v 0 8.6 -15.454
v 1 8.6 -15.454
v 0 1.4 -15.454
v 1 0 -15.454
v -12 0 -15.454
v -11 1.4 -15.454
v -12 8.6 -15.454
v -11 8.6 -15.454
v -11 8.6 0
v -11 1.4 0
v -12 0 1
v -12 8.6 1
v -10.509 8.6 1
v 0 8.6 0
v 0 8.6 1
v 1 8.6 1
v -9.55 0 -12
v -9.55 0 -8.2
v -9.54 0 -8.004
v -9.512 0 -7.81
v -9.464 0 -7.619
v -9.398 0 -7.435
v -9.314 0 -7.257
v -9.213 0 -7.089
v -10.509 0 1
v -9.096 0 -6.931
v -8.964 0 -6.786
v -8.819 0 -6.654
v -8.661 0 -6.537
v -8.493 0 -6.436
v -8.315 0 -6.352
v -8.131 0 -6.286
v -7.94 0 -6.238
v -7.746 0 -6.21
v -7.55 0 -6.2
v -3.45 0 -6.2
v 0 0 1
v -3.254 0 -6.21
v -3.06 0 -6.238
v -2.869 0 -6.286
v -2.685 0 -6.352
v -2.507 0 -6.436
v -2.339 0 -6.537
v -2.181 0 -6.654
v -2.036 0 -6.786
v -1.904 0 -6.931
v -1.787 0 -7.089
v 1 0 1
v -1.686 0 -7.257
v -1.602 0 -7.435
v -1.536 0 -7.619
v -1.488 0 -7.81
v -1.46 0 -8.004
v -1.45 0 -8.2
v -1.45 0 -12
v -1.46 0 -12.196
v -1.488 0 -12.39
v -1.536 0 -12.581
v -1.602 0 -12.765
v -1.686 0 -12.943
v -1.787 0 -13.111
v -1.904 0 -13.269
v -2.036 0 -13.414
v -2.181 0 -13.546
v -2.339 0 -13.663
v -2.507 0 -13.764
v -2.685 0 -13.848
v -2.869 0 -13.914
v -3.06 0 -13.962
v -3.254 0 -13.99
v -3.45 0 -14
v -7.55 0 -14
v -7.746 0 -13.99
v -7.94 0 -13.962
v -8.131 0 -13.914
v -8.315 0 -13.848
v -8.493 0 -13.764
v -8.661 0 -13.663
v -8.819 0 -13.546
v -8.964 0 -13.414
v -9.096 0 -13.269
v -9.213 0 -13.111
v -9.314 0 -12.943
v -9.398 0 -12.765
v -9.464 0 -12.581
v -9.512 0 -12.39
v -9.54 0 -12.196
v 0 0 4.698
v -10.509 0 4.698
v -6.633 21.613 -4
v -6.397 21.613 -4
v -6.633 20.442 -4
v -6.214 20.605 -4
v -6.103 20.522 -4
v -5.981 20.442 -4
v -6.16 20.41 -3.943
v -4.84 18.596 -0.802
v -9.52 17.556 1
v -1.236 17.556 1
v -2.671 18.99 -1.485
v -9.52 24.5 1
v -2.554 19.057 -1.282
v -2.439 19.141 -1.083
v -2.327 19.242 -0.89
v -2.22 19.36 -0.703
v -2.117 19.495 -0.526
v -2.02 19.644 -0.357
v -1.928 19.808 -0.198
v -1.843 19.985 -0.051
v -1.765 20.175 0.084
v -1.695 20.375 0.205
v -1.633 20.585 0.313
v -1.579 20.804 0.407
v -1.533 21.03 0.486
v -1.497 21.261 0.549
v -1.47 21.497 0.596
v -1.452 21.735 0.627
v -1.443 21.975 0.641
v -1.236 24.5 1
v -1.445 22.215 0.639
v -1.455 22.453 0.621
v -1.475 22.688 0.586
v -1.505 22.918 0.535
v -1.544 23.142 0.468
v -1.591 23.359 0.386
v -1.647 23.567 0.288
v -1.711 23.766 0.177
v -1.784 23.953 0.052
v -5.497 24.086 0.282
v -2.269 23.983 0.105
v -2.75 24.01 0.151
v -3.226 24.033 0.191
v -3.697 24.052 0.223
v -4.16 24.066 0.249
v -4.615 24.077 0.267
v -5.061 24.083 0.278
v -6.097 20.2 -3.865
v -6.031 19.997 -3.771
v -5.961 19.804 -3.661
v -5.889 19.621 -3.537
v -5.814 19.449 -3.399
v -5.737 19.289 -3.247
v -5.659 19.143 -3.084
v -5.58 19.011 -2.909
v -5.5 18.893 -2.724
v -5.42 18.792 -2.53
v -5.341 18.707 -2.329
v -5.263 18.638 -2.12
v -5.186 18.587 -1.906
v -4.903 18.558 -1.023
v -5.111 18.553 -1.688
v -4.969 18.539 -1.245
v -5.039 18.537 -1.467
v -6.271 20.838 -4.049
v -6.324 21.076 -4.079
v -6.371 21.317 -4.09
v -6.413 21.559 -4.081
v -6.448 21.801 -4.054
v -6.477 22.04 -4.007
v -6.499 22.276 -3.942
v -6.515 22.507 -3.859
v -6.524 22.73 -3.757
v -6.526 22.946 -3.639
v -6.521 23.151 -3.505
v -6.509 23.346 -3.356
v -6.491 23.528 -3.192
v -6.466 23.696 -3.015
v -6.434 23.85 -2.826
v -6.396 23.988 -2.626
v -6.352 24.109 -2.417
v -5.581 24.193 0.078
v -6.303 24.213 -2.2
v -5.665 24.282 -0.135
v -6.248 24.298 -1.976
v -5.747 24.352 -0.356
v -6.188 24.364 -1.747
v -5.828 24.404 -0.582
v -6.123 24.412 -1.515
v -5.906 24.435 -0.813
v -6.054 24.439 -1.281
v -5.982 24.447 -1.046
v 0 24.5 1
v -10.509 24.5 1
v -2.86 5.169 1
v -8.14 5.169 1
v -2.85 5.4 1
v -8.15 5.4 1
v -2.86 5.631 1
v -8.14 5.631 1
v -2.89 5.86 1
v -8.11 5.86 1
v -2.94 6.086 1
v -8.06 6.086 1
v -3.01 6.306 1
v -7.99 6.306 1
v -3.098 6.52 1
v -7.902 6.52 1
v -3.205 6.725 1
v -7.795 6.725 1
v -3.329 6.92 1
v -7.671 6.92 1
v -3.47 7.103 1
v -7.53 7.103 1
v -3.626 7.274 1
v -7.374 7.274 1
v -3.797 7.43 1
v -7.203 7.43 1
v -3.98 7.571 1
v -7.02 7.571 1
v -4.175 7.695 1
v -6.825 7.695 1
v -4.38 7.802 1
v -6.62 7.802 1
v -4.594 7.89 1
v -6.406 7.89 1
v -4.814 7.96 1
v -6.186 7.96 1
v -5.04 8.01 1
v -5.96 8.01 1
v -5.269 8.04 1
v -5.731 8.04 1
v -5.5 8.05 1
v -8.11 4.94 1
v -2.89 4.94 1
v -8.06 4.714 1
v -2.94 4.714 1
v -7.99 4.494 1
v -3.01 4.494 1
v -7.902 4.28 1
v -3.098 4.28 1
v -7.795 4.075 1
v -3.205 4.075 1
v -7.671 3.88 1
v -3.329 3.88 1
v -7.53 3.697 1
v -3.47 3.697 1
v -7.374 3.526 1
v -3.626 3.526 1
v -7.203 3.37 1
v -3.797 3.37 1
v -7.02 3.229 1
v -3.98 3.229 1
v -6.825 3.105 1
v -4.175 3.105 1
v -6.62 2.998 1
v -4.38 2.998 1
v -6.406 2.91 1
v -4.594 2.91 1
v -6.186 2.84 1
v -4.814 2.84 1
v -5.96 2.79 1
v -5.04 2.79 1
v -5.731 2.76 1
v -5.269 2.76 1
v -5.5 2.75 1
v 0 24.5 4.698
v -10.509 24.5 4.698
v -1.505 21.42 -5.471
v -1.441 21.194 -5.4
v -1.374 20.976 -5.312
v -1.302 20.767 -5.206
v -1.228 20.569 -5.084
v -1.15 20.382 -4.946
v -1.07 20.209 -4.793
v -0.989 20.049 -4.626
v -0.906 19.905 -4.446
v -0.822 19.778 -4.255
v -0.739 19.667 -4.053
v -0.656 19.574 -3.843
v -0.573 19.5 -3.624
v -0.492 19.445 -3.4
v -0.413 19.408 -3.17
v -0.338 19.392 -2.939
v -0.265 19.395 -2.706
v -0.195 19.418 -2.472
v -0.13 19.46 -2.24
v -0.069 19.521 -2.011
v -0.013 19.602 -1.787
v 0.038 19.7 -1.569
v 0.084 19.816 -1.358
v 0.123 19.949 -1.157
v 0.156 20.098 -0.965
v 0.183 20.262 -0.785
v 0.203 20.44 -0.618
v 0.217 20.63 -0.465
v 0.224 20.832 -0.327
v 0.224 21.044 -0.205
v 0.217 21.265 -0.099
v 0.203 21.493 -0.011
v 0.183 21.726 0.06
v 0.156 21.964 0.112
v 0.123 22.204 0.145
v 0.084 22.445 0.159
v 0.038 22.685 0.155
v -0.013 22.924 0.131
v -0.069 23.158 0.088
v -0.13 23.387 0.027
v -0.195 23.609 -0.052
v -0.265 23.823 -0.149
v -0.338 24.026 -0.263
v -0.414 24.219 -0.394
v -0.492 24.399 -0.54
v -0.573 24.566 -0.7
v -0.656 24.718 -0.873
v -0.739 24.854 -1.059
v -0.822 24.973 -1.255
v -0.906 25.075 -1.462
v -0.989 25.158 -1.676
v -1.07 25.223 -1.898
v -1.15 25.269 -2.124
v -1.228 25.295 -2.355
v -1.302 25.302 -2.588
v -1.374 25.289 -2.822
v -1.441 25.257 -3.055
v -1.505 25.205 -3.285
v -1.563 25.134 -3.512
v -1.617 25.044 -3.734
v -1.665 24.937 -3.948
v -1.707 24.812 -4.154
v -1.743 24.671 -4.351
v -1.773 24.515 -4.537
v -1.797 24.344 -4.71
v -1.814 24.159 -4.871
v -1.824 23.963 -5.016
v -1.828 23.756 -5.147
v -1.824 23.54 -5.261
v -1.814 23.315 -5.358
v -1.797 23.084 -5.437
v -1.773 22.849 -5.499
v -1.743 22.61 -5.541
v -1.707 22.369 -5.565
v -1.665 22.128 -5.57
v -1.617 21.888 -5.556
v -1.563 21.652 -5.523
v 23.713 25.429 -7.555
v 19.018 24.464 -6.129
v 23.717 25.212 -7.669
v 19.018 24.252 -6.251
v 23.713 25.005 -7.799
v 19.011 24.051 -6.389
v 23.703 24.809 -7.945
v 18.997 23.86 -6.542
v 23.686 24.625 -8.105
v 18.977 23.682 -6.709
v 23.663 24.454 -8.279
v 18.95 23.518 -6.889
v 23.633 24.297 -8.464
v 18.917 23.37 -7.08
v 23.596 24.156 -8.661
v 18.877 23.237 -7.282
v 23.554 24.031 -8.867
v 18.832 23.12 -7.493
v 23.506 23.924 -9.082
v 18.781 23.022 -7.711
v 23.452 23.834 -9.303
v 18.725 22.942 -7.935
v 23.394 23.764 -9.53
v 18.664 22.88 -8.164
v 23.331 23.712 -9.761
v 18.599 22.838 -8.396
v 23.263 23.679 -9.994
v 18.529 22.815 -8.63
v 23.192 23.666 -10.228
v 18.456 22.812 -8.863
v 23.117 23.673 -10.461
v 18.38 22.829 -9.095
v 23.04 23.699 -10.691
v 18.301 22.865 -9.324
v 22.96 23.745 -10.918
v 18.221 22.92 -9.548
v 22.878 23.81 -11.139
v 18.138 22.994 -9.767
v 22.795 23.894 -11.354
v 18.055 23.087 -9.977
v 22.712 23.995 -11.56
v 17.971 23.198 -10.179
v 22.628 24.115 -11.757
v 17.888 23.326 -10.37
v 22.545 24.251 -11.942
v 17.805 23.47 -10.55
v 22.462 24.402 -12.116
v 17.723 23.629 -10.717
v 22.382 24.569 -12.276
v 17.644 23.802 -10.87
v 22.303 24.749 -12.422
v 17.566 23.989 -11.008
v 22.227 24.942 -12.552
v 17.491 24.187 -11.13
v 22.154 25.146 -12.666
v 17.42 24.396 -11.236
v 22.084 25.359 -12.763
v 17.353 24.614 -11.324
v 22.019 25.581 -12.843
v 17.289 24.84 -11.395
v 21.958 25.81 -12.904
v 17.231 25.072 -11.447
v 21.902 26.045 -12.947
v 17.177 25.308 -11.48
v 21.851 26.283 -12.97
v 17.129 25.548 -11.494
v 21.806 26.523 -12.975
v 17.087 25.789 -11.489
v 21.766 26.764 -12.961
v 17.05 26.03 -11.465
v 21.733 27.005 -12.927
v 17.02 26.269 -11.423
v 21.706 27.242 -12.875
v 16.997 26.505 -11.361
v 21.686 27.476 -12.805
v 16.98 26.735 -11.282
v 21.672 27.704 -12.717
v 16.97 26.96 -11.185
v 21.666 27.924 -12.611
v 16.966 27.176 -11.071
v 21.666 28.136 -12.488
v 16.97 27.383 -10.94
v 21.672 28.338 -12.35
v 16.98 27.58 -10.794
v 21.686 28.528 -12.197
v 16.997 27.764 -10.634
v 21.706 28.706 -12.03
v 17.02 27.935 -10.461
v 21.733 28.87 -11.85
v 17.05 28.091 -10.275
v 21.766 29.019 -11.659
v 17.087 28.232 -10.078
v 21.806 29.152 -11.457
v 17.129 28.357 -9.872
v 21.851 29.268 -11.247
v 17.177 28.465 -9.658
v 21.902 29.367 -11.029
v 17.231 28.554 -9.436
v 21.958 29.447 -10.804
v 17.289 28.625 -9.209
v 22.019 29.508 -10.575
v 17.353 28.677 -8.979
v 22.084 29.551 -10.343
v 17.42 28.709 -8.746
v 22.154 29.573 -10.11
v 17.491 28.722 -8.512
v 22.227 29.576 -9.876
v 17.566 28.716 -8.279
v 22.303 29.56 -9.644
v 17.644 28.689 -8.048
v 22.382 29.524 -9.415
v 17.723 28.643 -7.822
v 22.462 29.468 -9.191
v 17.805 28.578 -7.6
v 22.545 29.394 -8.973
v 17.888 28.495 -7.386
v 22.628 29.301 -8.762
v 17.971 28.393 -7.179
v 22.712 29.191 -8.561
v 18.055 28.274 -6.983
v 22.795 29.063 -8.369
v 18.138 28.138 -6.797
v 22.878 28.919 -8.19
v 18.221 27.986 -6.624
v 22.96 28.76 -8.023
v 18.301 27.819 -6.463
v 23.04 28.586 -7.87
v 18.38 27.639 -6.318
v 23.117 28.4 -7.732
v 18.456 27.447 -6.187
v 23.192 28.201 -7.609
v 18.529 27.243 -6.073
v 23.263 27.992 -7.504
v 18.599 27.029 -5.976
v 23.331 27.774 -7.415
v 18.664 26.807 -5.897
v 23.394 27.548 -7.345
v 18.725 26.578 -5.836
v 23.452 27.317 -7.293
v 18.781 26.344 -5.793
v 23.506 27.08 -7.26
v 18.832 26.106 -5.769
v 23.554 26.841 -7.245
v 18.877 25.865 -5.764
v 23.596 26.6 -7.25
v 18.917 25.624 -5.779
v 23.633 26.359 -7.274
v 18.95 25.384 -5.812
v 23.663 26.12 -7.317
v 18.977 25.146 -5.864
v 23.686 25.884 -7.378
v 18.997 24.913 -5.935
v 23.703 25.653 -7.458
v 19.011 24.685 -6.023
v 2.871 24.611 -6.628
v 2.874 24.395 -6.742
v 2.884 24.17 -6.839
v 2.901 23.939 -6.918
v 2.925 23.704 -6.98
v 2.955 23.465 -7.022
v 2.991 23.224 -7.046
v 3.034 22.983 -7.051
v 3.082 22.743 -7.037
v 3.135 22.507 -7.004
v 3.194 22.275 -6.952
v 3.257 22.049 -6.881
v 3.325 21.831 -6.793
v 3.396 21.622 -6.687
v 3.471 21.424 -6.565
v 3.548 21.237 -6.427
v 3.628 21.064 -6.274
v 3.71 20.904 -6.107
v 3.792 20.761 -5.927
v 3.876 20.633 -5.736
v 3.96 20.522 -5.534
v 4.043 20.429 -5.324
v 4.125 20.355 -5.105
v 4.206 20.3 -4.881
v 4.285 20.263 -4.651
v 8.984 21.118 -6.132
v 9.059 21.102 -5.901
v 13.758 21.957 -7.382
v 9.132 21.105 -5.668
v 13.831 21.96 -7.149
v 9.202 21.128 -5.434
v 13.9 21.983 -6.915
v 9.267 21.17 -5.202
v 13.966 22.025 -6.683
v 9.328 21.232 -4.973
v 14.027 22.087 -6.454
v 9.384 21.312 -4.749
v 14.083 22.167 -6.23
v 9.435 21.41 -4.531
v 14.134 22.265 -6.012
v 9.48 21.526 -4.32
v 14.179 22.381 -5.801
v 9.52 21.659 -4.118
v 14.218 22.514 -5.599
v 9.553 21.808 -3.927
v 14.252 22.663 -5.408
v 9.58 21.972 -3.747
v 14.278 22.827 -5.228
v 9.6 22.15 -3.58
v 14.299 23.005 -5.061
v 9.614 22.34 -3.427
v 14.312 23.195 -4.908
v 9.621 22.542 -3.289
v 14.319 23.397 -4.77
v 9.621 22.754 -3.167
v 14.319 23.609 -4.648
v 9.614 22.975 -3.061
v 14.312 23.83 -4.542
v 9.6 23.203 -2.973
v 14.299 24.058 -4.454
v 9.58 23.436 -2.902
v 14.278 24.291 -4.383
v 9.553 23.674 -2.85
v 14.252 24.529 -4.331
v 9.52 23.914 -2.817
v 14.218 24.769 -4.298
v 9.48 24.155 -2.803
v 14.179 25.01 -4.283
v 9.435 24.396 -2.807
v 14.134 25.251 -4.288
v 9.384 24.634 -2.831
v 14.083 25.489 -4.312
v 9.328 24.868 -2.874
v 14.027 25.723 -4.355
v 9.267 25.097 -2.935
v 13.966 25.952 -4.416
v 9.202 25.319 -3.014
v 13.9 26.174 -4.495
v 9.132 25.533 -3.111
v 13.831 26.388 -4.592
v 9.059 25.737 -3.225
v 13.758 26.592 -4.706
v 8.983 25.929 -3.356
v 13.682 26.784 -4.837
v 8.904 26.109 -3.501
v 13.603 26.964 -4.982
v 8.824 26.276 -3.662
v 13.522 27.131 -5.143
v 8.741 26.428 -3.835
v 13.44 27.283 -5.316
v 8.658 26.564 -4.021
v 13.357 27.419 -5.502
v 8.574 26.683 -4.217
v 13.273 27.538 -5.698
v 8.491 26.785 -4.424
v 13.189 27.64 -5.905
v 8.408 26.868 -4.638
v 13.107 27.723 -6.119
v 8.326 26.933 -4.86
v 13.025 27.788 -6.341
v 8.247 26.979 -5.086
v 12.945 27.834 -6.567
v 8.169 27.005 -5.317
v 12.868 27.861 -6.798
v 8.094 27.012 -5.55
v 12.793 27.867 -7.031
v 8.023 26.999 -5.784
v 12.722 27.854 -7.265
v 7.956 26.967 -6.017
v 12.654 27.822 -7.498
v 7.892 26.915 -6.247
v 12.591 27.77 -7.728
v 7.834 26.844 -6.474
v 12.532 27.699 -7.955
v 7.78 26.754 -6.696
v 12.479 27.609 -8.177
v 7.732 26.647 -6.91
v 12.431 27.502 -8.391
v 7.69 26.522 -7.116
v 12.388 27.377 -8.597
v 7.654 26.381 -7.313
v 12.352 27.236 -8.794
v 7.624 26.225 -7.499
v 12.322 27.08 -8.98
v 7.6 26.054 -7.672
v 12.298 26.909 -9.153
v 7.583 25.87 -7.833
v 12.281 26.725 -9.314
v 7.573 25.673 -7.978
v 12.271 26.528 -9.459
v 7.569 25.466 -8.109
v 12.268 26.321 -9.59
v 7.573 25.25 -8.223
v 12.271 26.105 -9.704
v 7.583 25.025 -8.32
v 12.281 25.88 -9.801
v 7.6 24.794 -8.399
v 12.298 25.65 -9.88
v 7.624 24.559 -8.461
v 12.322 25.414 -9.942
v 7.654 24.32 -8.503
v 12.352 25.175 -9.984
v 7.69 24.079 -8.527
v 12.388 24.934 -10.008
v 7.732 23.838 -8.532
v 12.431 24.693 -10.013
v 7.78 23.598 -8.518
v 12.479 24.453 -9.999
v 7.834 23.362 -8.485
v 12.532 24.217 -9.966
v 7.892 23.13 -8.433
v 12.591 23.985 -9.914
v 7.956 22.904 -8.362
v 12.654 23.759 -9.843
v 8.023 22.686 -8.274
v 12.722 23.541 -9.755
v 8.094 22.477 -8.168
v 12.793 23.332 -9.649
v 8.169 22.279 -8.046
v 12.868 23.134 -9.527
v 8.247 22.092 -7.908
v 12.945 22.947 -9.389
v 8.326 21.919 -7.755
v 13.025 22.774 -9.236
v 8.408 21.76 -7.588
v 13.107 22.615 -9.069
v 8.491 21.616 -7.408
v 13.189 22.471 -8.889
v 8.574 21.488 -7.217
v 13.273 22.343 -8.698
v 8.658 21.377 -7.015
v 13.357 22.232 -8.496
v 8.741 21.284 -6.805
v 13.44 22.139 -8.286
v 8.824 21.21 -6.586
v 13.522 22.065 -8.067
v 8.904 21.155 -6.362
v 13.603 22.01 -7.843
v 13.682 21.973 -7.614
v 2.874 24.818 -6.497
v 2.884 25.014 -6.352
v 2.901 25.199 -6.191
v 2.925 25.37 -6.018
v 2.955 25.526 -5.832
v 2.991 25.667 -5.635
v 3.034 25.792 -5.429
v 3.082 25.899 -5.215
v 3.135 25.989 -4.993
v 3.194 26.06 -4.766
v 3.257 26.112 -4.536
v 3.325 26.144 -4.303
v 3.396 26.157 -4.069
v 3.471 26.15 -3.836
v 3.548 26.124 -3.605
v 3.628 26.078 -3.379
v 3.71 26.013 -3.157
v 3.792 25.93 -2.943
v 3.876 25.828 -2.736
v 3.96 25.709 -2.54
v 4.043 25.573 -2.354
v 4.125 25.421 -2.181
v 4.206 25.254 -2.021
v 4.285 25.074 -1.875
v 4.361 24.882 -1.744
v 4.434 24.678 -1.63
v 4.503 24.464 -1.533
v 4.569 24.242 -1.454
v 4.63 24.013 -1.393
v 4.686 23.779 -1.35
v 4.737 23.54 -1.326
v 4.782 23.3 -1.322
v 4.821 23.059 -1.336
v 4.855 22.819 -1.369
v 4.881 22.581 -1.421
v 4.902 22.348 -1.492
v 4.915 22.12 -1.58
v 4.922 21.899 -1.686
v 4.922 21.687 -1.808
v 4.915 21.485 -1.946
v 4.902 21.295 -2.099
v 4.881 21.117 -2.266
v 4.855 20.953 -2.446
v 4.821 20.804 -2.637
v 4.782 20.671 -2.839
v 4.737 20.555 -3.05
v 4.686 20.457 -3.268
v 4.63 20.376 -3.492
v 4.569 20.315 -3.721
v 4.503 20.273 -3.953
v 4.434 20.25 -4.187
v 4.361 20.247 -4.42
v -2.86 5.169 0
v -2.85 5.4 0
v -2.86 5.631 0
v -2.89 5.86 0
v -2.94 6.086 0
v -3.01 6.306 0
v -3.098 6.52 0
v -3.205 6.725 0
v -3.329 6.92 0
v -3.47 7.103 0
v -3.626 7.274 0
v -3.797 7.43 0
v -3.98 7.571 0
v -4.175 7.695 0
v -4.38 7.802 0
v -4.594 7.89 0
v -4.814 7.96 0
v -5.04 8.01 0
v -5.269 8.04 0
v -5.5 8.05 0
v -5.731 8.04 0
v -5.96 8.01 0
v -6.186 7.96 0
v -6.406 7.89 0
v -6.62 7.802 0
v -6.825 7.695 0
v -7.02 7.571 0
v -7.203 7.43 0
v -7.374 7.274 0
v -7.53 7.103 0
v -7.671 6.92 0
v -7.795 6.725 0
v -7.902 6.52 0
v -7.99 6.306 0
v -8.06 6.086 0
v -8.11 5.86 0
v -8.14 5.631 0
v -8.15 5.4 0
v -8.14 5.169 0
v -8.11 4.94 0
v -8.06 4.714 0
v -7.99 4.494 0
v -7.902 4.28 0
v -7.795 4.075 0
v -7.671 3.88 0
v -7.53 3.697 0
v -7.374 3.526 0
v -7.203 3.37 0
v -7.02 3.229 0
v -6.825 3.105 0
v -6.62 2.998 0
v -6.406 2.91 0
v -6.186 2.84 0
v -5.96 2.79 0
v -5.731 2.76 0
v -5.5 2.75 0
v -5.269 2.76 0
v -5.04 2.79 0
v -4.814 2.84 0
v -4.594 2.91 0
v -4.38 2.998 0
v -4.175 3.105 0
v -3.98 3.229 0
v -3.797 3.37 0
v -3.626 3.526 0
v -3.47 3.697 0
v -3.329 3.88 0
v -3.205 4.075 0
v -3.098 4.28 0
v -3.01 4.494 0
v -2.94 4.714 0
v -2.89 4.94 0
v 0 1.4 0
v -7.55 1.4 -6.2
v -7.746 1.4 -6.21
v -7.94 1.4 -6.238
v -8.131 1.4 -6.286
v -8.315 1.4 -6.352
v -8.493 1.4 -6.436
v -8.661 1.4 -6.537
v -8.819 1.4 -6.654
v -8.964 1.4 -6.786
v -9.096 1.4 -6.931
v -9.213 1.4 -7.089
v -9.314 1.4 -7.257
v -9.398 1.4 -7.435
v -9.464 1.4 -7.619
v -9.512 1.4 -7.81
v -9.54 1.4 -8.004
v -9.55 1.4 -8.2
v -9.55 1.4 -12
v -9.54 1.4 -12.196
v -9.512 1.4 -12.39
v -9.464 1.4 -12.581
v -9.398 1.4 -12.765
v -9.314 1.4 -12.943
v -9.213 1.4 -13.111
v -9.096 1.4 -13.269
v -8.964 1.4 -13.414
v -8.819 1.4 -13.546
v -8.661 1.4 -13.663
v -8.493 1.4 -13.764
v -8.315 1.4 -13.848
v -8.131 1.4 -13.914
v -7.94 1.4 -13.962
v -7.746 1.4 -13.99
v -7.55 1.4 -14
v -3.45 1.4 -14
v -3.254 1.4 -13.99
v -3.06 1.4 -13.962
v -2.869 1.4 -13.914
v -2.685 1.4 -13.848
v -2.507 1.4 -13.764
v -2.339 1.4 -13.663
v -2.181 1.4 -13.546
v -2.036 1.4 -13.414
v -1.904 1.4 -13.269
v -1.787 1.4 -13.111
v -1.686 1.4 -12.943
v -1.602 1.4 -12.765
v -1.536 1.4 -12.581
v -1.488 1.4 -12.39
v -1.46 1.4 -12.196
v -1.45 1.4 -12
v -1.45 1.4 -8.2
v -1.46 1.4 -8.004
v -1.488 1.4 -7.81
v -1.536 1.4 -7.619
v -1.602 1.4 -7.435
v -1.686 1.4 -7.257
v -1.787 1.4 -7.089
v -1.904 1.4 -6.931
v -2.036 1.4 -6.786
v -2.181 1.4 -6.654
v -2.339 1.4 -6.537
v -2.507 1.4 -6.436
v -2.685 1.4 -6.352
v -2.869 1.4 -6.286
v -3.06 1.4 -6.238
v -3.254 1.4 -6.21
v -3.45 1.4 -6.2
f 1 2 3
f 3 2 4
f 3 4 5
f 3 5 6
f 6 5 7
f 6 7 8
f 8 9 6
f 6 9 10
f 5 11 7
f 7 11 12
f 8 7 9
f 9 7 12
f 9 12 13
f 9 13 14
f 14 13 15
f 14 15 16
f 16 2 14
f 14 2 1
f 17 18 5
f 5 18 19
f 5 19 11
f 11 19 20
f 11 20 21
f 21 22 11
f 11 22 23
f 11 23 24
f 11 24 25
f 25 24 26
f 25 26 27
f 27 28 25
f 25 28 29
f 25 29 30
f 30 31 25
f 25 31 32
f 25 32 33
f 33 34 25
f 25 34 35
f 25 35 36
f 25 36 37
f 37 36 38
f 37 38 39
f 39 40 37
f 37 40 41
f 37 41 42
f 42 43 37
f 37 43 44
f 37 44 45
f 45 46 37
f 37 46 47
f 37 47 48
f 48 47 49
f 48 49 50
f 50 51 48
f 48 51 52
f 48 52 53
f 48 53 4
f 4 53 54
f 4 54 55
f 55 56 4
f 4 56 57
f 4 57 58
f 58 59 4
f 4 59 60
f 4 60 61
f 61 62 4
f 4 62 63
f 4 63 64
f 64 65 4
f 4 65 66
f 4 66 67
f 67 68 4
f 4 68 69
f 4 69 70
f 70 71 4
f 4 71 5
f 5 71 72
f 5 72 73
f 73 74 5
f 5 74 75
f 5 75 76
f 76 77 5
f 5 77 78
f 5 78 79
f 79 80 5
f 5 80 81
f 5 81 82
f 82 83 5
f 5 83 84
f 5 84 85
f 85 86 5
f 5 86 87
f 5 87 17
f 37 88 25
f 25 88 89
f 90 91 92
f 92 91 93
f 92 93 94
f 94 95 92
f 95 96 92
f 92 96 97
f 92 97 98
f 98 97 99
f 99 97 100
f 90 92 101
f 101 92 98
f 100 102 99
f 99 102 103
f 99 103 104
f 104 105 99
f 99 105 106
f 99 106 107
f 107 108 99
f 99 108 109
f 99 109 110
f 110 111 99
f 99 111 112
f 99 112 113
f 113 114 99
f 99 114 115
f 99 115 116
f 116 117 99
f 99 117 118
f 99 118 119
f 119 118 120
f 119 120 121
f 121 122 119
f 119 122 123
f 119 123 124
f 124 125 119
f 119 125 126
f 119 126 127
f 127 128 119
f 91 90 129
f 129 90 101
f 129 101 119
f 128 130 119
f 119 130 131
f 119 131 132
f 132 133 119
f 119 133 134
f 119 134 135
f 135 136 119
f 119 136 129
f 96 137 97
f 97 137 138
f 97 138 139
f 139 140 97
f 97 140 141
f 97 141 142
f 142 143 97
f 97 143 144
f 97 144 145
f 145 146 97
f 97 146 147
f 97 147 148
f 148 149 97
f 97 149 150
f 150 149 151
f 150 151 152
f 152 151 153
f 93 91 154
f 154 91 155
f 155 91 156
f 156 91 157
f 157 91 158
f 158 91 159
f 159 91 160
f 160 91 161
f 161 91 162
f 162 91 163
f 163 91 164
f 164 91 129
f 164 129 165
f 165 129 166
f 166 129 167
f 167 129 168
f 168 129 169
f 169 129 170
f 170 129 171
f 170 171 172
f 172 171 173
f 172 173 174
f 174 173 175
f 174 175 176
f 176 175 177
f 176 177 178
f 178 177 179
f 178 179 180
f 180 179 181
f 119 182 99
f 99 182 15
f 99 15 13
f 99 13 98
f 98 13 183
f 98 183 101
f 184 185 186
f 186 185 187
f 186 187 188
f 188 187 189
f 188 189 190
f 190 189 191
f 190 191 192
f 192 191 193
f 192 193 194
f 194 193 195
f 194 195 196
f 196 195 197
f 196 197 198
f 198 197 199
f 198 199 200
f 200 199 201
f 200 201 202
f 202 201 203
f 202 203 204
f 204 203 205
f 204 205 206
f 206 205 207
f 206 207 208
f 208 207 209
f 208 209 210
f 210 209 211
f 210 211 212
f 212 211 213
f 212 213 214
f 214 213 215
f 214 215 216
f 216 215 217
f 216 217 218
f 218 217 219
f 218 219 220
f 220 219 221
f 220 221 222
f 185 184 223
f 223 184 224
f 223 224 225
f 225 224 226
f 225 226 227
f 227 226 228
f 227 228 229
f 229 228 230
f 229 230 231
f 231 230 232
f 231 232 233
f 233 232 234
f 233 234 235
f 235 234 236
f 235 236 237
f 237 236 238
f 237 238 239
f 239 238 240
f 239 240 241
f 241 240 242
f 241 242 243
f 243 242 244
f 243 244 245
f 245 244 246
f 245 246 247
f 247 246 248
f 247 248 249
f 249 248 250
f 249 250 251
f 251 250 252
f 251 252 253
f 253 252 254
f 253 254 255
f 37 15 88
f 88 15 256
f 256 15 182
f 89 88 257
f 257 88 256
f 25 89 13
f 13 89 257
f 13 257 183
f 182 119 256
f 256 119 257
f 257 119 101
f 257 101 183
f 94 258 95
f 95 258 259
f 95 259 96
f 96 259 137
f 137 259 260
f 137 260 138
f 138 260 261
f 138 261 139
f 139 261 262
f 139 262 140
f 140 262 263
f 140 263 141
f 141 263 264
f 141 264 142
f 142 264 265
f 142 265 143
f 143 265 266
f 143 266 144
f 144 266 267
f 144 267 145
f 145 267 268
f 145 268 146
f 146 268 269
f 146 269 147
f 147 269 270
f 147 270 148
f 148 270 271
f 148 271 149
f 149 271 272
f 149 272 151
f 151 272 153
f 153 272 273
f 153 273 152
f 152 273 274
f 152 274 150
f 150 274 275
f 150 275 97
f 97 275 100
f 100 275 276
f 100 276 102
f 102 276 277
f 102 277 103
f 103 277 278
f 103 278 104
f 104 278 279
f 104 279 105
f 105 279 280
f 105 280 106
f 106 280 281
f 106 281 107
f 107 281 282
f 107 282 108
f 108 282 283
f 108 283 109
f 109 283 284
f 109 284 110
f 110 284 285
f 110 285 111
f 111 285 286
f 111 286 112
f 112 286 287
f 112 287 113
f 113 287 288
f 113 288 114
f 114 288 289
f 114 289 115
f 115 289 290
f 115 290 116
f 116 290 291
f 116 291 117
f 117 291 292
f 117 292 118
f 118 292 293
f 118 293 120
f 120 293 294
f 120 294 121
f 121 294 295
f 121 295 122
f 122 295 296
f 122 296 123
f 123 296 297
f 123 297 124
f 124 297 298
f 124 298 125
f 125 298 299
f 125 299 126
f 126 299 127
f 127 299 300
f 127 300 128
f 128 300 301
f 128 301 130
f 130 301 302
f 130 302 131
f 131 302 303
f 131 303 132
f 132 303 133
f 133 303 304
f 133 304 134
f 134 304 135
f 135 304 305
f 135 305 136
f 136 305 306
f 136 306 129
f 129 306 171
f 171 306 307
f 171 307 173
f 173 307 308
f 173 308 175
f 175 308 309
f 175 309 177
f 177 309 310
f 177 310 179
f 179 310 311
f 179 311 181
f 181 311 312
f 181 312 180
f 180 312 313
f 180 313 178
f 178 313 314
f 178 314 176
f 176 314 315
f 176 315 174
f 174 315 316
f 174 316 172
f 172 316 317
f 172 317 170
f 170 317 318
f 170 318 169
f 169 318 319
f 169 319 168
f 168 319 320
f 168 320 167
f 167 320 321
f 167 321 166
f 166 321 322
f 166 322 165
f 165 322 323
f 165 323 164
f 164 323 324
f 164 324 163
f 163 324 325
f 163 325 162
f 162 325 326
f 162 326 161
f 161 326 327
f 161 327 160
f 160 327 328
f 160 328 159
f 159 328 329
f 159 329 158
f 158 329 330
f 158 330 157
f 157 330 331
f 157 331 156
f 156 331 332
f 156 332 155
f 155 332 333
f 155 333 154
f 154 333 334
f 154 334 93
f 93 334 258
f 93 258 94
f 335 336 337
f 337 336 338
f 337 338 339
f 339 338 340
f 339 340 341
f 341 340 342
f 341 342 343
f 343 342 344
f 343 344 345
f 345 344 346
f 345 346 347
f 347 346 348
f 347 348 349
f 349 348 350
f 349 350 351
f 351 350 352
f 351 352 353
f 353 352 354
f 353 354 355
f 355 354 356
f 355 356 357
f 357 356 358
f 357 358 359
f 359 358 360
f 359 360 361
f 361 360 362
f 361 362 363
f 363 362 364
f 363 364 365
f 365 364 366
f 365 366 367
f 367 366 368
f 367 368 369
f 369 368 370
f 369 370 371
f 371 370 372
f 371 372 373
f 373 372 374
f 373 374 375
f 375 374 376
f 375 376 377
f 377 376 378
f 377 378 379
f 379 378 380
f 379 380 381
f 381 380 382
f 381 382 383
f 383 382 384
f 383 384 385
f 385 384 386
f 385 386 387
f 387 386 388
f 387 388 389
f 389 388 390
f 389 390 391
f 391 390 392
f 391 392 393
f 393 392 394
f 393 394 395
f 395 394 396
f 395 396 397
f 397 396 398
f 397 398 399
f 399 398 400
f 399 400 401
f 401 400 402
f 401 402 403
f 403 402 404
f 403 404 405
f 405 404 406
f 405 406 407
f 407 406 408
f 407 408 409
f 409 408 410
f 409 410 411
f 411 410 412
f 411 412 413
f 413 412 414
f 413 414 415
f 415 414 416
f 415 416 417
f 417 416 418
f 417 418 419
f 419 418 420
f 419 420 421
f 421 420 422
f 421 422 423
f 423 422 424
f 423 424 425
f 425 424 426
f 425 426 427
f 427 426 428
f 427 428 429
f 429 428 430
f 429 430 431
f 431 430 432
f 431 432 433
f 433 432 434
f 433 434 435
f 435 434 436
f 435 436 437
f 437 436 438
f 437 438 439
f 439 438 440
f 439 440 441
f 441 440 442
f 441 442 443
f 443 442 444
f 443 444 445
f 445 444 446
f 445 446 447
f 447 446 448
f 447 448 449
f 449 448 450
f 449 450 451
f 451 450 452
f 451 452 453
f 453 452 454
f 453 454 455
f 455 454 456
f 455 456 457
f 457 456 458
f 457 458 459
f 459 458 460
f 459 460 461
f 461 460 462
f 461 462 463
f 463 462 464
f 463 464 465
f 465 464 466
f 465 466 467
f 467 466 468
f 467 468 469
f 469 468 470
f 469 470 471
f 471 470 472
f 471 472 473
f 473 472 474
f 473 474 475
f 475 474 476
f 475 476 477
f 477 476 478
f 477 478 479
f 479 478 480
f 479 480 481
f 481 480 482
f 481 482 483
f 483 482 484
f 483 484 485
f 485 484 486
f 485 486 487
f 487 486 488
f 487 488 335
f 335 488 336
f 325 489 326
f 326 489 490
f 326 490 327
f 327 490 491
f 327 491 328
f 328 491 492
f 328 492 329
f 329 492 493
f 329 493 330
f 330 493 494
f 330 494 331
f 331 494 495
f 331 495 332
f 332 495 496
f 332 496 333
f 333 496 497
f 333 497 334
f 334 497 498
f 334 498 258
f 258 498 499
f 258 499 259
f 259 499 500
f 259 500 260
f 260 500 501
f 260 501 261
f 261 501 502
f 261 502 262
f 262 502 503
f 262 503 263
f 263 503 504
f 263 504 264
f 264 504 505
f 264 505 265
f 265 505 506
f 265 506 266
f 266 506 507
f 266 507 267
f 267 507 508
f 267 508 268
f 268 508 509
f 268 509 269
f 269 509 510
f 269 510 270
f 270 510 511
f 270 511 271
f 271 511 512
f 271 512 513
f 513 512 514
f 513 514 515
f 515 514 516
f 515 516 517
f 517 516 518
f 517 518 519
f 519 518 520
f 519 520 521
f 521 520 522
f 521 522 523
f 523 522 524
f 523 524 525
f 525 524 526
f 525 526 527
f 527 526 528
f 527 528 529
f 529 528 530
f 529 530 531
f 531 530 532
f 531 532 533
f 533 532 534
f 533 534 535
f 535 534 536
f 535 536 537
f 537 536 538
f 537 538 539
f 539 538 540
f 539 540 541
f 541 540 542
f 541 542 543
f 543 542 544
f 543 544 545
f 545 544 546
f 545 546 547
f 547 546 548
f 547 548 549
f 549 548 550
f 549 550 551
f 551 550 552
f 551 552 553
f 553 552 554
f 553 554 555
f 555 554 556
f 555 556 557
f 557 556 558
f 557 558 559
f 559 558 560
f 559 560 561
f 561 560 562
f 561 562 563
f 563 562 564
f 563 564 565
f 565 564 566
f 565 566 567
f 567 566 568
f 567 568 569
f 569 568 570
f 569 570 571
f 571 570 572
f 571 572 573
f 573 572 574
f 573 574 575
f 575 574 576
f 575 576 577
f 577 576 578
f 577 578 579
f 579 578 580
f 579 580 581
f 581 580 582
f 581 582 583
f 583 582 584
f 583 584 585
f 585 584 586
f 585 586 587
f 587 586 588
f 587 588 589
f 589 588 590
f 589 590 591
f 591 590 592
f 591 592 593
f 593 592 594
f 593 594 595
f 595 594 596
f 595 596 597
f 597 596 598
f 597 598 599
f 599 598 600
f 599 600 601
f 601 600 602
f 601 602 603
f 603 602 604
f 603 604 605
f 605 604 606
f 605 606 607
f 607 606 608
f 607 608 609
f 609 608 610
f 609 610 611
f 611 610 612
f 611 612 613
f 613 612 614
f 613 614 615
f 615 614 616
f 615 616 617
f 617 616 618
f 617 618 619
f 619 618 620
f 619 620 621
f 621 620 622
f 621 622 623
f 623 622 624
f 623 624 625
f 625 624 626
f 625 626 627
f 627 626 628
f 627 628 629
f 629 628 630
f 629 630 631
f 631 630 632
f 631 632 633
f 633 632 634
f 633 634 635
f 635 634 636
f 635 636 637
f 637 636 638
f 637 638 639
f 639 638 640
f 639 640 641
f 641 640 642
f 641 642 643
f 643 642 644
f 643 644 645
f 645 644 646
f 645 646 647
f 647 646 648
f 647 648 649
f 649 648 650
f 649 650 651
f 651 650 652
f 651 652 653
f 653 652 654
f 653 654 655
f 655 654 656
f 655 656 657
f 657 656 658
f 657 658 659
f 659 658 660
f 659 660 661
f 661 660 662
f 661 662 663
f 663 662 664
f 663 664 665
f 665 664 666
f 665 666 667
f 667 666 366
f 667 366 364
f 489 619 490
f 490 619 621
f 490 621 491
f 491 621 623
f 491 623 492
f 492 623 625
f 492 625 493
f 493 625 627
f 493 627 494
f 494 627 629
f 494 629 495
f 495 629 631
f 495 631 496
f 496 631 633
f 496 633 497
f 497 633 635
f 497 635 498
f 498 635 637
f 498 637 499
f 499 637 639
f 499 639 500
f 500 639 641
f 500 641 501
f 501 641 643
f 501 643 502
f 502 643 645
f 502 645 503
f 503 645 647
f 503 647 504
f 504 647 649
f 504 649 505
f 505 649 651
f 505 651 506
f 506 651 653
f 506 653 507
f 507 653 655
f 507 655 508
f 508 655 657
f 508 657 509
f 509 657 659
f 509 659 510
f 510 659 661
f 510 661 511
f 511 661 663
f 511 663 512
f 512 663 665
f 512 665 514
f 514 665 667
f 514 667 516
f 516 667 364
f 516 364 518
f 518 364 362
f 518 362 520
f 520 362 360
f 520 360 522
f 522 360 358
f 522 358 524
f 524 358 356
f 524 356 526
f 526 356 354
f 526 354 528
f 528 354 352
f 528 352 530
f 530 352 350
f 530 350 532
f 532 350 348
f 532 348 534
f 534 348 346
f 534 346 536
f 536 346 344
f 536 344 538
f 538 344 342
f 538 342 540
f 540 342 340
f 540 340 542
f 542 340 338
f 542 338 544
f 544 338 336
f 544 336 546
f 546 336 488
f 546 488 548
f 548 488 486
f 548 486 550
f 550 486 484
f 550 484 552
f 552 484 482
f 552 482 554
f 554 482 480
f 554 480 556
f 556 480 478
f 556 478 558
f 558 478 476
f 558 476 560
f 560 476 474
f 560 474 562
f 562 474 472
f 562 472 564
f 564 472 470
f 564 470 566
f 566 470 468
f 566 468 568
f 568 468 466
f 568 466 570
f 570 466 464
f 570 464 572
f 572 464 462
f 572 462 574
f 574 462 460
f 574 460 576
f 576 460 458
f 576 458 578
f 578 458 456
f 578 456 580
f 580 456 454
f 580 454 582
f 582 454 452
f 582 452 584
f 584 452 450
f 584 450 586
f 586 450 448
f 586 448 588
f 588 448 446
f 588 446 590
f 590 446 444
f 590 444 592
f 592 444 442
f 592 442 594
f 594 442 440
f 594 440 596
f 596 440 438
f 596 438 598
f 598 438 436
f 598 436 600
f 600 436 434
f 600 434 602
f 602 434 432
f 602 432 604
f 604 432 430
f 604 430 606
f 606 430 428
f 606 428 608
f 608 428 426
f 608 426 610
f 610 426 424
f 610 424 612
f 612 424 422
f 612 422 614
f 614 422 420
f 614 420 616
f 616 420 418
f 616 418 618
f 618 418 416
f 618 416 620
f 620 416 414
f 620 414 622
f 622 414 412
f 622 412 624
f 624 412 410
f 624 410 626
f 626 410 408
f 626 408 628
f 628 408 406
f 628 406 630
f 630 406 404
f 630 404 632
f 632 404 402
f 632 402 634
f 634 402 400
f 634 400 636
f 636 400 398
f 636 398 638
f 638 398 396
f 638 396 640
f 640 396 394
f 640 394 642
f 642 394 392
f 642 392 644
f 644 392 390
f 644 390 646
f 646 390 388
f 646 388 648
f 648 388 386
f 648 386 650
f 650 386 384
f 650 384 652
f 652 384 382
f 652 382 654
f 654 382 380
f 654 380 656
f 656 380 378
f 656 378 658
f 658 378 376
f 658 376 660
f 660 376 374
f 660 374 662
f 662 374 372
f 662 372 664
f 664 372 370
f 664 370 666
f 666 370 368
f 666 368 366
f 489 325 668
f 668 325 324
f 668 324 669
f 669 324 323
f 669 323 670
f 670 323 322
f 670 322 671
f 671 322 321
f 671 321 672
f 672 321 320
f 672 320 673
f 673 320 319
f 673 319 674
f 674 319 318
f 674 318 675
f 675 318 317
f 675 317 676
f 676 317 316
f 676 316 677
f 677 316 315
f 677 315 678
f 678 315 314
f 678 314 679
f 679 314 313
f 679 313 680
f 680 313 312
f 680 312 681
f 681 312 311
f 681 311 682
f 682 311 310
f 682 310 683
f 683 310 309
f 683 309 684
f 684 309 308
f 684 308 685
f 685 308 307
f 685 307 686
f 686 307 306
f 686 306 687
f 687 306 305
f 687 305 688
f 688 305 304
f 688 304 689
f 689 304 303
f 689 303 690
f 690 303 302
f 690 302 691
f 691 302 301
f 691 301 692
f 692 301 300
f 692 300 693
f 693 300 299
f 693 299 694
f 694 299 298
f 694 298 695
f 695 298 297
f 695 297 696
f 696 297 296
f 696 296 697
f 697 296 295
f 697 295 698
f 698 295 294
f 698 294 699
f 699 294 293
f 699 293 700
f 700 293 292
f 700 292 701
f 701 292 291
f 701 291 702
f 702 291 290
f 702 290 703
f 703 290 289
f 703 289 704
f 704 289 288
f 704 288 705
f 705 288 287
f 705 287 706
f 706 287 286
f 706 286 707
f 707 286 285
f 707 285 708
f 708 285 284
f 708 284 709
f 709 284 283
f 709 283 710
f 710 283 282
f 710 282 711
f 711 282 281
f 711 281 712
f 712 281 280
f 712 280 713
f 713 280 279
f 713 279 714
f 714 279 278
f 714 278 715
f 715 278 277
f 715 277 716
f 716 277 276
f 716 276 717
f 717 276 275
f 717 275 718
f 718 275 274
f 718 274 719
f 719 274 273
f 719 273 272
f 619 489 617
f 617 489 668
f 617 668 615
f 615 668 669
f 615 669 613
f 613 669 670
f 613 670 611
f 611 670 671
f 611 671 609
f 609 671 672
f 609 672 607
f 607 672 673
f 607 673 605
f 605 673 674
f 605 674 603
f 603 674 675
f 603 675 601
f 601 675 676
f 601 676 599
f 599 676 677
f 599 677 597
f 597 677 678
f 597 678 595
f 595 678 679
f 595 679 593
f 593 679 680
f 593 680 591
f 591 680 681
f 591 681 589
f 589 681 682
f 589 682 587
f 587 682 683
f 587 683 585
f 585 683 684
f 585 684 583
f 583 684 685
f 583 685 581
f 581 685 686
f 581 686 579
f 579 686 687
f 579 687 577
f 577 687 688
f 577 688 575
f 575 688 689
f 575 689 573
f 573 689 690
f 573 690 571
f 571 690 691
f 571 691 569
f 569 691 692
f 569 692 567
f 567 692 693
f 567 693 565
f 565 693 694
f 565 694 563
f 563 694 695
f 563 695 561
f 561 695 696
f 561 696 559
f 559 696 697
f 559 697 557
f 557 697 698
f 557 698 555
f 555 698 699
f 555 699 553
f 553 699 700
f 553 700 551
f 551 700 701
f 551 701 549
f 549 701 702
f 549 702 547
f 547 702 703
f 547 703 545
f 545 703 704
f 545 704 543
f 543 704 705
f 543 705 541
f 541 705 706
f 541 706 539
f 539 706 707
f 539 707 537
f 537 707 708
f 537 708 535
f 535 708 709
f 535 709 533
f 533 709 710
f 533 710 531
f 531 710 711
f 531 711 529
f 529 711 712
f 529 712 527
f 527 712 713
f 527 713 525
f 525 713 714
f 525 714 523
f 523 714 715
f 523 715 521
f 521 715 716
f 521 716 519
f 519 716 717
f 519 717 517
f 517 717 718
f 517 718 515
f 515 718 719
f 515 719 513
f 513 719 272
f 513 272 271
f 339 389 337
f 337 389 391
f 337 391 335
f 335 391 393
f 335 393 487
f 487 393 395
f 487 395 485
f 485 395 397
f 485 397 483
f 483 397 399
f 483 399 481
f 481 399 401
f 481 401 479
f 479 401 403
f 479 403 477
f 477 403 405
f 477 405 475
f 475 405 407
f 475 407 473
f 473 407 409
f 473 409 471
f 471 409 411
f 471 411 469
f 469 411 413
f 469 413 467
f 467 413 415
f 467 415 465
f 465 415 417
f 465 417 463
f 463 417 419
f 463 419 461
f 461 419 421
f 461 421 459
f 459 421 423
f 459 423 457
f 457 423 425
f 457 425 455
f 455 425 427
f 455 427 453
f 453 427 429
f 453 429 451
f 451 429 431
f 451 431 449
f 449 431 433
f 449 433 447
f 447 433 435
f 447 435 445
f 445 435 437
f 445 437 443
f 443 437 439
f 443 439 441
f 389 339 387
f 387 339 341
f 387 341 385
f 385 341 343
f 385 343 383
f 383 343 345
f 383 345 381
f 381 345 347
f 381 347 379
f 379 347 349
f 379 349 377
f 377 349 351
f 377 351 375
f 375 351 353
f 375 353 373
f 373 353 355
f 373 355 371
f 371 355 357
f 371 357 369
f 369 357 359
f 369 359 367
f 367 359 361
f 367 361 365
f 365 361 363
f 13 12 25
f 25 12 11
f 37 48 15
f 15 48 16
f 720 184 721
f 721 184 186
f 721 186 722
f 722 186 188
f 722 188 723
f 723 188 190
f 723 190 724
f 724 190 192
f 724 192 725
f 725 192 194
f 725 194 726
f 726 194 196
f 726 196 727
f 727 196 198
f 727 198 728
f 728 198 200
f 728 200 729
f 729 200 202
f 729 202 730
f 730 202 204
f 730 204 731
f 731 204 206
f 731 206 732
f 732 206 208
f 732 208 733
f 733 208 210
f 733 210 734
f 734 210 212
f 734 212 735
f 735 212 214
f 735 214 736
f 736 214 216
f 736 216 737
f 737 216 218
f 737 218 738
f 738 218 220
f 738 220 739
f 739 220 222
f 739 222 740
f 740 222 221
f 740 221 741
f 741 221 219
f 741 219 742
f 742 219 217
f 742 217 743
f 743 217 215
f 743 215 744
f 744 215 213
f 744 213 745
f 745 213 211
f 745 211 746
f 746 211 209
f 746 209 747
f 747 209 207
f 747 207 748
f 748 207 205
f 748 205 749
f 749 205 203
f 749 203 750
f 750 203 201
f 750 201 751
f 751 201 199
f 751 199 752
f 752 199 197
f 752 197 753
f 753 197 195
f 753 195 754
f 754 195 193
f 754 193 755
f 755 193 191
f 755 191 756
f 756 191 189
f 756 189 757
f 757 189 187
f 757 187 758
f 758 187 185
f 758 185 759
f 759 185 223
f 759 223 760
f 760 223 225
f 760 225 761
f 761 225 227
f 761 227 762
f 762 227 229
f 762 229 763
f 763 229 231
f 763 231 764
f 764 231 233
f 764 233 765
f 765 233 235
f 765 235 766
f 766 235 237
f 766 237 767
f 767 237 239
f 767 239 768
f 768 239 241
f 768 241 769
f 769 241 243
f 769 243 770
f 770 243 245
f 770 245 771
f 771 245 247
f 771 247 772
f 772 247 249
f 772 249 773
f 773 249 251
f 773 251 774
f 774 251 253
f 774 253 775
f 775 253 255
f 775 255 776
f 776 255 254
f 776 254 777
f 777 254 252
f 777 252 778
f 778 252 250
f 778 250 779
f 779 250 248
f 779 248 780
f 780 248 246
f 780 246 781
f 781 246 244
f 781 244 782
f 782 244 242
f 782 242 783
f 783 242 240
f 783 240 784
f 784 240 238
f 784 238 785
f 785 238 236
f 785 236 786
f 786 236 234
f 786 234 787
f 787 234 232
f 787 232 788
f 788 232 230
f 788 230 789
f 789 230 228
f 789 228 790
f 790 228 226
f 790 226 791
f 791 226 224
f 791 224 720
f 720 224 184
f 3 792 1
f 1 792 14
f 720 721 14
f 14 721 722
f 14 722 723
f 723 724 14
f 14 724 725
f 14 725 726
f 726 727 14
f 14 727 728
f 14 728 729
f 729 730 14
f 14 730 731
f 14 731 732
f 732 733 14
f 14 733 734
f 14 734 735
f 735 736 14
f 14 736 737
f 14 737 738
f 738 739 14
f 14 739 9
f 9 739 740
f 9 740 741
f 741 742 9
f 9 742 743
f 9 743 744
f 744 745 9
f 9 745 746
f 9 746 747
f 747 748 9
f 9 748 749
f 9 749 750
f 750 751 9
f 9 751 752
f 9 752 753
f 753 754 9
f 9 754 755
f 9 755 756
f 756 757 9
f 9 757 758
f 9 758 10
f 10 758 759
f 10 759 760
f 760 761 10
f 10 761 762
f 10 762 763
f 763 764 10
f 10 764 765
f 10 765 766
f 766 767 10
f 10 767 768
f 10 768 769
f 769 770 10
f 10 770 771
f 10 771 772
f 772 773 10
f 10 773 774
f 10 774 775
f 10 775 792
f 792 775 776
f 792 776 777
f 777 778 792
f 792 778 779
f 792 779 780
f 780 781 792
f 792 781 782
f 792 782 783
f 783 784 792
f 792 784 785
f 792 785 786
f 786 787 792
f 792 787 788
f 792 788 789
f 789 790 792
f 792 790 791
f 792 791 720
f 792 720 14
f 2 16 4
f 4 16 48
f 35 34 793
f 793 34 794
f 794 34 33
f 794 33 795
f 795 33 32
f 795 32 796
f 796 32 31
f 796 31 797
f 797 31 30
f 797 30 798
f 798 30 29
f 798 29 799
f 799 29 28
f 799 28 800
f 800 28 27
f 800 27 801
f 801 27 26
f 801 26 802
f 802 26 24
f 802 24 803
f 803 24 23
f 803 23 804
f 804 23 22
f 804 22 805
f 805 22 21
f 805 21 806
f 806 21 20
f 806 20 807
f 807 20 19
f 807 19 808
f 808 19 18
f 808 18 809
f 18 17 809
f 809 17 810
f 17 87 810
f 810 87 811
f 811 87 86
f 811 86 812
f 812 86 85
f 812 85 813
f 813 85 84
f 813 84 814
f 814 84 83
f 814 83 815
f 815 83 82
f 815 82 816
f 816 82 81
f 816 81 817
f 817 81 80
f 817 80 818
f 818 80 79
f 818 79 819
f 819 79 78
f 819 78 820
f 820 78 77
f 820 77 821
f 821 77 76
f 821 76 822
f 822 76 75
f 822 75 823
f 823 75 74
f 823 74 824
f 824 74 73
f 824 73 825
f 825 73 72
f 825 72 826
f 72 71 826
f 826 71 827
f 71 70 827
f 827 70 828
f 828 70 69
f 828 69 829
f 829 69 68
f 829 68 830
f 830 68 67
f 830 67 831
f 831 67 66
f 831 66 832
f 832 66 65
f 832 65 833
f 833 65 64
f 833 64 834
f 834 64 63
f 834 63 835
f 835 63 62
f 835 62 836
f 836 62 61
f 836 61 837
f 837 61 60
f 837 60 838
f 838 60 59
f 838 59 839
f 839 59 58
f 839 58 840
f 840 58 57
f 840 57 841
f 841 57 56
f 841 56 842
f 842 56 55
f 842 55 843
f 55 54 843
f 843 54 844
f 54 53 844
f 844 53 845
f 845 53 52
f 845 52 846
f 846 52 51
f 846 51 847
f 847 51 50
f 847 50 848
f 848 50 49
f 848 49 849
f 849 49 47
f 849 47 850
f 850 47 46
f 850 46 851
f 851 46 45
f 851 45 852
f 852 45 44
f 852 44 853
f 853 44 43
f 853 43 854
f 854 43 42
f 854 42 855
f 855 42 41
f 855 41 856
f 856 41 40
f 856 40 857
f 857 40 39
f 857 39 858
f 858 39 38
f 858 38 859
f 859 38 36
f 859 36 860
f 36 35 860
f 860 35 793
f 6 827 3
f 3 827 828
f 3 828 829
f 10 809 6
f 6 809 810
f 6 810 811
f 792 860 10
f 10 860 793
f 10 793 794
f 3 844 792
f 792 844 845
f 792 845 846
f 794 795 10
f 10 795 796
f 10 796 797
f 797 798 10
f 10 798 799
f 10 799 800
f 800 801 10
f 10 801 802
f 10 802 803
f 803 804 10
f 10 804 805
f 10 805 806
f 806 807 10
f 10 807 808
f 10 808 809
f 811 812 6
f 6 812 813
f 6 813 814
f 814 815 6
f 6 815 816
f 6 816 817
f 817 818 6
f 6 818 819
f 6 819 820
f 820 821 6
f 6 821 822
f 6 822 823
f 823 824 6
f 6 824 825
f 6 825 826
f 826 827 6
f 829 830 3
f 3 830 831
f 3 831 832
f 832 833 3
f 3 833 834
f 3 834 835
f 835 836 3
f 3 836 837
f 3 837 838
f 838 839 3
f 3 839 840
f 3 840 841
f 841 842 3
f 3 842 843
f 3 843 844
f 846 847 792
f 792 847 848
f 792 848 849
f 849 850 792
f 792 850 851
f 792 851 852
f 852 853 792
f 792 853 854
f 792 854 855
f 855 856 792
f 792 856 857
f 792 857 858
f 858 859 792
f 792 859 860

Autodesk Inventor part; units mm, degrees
ref_plane "YZ Plane" through (0, 0, 0) normal (1, 0, 0) x (0, 1, 0)
ref_plane "XZ Plane" through (0, 0, 0) normal (0, 1, 0) x (-1, 0, 0)
ref_plane "XY Plane" through (0, 0, 0) normal (0, 0, 1) x (1, 0, 0)
sketch "Sketch3" plane through (0, 0, 0) normal (0, 1, 0) x (-1, 0, 0)
  line L0 (0, 0) -> (11, 0)
  line L1 (11, 0) -> (11, -56)
  line L2 (11, -56) -> (0, -56)
  line L3 (0, -56) -> (0, 0)
  line L4 (12, 1) -> (-1, 1)
  line L5 (-1, 1) -> (-1, -57)
  line L6 (-1, -57) -> (12, -57)
  line L7 (12, -57) -> (12, 1)
  line L8 (7.55, -6.2) -> (3.45, -6.2)
  line L9 (1.45, -8.2) -> (1.45, -12)
  line L10 (3.45, -14) -> (7.55, -14)
  line L11 (9.55, -12) -> (9.55, -8.2)
  arc A0 (9.55, -8.2) -> (7.55, -6.2) centre (7.55, -8.2) ccw
  arc A1 (7.55, -14) -> (9.55, -12) centre (7.55, -12) ccw
  arc A2 (1.45, -12) -> (3.45, -14) centre (3.45, -12) ccw
  arc A3 (3.45, -6.2) -> (1.45, -8.2) centre (3.45, -8.2) ccw
  circle A4 centre (5.5, -51) radius 1
  point P0 (1.45, -14)
  point P1 (1.45, -6.2)
  point P2 (9.55, -14)
  dimension "d2" = 11
  dimension "d3" = 56
  dimension "d4" = 1
  dimension "d5" = 1
  dimension "d6" = 1
  dimension "d7" = 1
  dimension "d8" = 8.1
  dimension "d9" = 7.8
  dimension "d10" = 14
  dimension "d11" = 9.55
  dimension "d12" = 2
  dimension "d30" = 2
  dimension "d31" = 5
  dimension "d32" = 5.5
extrude "Extrusion1" add sketch "Sketch3" along normal blind 1.4 contours L0 L1 L2 L3
extrude "Extrusion3" add sketch "Sketch3" along normal blind 8.6 contours L7 L6 L5 L4
sketch "Sketch4" plane through (-12, 0, 1) normal (0, 0, 1) x (1, 0, 0)
  circle A0 centre (6.5, 5.4) radius 2.65
  line L0 (0, 0) -> (0, 8.6) projected
  line L1 (0, 0) -> (13, 0) projected
  point P0 (12, 0)
  dimension "d19" = 6.5
  dimension "d20" = 5.3
  dimension "d21" = 5.4
extrude "Extrusion4" cut sketch "Sketch4" against normal blind 8.6
sketch "Sketch5" plane through (1, 0, -57) normal (0, 0, -1) x (-1, 0, 0)
  line L0 (2.675, 6.25) -> (10.325, 6.25)
  line L1 (10.325, 6.25) -> (10.325, 3.55)
  line L2 (10.325, 3.55) -> (2.675, 3.55)
  line L3 (2.675, 3.55) -> (2.675, 6.25)
  line L4 (0, 0) -> (13, 0) projected
  line L5 (13, 0) -> (13, 8.6) projected
  point P0 (1, 0)
  dimension "d24" = 7.65
  dimension "d25" = 2.7
  dimension "d26" = 3.55
  dimension "d27" = 2.675
extrude "Extrusion5" cut sketch "Sketch5" against normal blind 8.6
sketch "Sketch6" plane through (0, 0, 0) normal (0, 1, 0) x (-1, 0, 0)
  line L0 (46.885, 6) -> (-33.7151, 6)
  line L1 (12, 1) -> (-1, 1) projected
  point P0 (0, 0)
  dimension "d33" = 5
ref_plane "Work Plane1" through (-46.885, 0, 6) normal (0, -0.8660254, -0.5) x (1, 0, 0)
ref_plane "Work Plane2" through (-46.885, 12.9904, 13.5) normal (0, -0.8660254, -0.5) x (1, 0, 0)
sketch "Sketch8" plane through (-46.885, 12.9904, 13.5) normal (0, -0.8660254, -0.5) x (1, 0, 0)
  line L0 (41.385, -17.0022) -> (69.5758, -27.2628)
  line L1 (47.885, -8.6301) -> (47.885, -58.8596) projected
  line L2 (34.885, -4.3301) -> (47.885, -4.3301) projected
  line L3 (46.885, -57.9936) -> (46.885, -9.4962) projected
  line L4 (69.5758, -27.2628) -> (70.6018, -24.4437)
  line L5 (70.6018, -24.4437) -> (42.4111, -14.1831)
  line L6 (42.4111, -14.1831) -> (41.385, -17.0022)
  point P0 (46.885, -5.1962)
  dimension "d42" = 70
  dimension "d44" = 5.5
  dimension "d45" = 30
  dimension "d46" = 3
revolve "Revolution1" add sketch "Sketch8" angle 360 about axis through (-5.5, 21.4915, -1.2243) along (0.9396926, 0.1710101, -0.2961981)
sketch "Sketch9" plane through (0, 0, 0) normal (0, 1, 0) x (-1, 0, 0)
  line L0 (12, 1) -> (-1, 1) projected
  line L1 (0, 1) -> (10.5086, 1)
  line L2 (10.5086, 1) -> (10.5086, 4.698)
  line L3 (10.5086, 4.698) -> (0, 4.698)
  line L4 (0, 4.698) -> (0, 1)
  point P0 (0, 0)
extrude "Extrusion6" add sketch "Sketch9" along normal blind 24.5
sketch "Sketch10" plane through (0, 8.6, 1) normal (0, 0, -1) x (-1, 0, 0)
  line L0 (0, 15.9) -> (10.5086, 15.9) projected
  line L1 (9.5196, 15.9) -> (1.2363, 15.9)
  line L2 (1.2363, 15.9) -> (1.2363, 8.9556)
  line L3 (1.2363, 8.9556) -> (9.5196, 8.9556)
  line L4 (9.5196, 8.9556) -> (9.5196, 15.9)
  point P0 (0, -8.6)
extrude "Extrusion7" add sketch "Sketch10" along normal blind 5 draft -30
sketch "Sketch11" plane through (0, 0, 0) normal (1, 0, 0) x (0, 1, 0)
  line L0 (17.1847, -15.4539) -> (-9.2723, -15.4539)
  line L1 (-9.2723, -15.4539) -> (-9.2723, -62.4336)
  line L2 (-9.2723, -62.4336) -> (17.1847, -62.4336)
  line L3 (17.1847, -62.4336) -> (17.1847, -15.4539)
  point P0 (0, 0)
extrude "Extrusion8" cut sketch "Sketch11" along normal through all both and the other way through all
equation "\"d11\" = 0.5 * d2 + 0.5 * d8"
equation "\"d32\" = 0.5 * d2"
equation "\"d19\" = 0.5 * d2 + d4"
equation "\"d44\" = 0.5 * d2"
properties part number "QC25BTFication_2"
